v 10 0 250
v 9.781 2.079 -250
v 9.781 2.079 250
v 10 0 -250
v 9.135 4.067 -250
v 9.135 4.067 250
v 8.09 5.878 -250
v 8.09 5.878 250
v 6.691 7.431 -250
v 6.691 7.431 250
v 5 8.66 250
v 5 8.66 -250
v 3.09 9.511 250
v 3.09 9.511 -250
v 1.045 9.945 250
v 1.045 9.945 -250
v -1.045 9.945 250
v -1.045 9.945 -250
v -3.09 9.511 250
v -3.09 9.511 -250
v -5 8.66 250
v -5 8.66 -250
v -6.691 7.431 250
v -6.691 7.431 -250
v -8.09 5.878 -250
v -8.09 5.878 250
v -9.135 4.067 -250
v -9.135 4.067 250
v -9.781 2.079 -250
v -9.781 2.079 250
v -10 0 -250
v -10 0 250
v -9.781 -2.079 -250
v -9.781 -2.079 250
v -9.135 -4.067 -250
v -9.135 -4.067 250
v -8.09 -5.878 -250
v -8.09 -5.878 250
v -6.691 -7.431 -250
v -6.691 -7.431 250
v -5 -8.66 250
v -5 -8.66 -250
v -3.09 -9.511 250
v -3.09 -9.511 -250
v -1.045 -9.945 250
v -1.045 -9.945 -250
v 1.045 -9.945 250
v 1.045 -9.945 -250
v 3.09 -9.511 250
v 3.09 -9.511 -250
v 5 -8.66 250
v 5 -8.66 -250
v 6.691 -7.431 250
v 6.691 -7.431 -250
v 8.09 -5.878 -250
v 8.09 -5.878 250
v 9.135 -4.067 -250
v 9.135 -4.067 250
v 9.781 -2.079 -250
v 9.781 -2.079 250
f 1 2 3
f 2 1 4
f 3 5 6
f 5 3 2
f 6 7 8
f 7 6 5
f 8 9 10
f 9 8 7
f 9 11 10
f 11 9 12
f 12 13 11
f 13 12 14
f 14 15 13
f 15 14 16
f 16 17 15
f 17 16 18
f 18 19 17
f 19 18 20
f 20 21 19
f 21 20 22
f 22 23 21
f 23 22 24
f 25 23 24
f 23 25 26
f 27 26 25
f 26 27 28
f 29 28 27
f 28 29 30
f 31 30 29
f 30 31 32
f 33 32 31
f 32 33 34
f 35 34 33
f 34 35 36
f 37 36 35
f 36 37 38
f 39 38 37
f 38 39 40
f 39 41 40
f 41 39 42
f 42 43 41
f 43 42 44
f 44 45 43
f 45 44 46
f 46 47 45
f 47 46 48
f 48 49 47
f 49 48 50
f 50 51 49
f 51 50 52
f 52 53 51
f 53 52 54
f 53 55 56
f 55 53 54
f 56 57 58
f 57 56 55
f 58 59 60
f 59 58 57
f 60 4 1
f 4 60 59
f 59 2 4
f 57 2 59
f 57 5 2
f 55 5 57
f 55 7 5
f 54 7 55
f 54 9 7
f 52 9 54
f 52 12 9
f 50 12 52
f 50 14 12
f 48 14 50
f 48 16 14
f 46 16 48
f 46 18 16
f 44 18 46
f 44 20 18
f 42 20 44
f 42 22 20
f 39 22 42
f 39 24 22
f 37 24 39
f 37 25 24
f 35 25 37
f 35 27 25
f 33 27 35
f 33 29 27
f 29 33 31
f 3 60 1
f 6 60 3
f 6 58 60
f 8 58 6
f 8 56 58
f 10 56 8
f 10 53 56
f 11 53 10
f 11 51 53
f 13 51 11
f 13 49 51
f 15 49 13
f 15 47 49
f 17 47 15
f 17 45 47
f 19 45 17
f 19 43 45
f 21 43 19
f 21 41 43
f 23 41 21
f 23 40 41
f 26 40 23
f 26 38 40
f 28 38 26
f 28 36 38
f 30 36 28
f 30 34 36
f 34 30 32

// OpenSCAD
module Axle(length, diameter){
    cylinder(h=length, d=diameter, center=true);
}


Axle(500, 20);
